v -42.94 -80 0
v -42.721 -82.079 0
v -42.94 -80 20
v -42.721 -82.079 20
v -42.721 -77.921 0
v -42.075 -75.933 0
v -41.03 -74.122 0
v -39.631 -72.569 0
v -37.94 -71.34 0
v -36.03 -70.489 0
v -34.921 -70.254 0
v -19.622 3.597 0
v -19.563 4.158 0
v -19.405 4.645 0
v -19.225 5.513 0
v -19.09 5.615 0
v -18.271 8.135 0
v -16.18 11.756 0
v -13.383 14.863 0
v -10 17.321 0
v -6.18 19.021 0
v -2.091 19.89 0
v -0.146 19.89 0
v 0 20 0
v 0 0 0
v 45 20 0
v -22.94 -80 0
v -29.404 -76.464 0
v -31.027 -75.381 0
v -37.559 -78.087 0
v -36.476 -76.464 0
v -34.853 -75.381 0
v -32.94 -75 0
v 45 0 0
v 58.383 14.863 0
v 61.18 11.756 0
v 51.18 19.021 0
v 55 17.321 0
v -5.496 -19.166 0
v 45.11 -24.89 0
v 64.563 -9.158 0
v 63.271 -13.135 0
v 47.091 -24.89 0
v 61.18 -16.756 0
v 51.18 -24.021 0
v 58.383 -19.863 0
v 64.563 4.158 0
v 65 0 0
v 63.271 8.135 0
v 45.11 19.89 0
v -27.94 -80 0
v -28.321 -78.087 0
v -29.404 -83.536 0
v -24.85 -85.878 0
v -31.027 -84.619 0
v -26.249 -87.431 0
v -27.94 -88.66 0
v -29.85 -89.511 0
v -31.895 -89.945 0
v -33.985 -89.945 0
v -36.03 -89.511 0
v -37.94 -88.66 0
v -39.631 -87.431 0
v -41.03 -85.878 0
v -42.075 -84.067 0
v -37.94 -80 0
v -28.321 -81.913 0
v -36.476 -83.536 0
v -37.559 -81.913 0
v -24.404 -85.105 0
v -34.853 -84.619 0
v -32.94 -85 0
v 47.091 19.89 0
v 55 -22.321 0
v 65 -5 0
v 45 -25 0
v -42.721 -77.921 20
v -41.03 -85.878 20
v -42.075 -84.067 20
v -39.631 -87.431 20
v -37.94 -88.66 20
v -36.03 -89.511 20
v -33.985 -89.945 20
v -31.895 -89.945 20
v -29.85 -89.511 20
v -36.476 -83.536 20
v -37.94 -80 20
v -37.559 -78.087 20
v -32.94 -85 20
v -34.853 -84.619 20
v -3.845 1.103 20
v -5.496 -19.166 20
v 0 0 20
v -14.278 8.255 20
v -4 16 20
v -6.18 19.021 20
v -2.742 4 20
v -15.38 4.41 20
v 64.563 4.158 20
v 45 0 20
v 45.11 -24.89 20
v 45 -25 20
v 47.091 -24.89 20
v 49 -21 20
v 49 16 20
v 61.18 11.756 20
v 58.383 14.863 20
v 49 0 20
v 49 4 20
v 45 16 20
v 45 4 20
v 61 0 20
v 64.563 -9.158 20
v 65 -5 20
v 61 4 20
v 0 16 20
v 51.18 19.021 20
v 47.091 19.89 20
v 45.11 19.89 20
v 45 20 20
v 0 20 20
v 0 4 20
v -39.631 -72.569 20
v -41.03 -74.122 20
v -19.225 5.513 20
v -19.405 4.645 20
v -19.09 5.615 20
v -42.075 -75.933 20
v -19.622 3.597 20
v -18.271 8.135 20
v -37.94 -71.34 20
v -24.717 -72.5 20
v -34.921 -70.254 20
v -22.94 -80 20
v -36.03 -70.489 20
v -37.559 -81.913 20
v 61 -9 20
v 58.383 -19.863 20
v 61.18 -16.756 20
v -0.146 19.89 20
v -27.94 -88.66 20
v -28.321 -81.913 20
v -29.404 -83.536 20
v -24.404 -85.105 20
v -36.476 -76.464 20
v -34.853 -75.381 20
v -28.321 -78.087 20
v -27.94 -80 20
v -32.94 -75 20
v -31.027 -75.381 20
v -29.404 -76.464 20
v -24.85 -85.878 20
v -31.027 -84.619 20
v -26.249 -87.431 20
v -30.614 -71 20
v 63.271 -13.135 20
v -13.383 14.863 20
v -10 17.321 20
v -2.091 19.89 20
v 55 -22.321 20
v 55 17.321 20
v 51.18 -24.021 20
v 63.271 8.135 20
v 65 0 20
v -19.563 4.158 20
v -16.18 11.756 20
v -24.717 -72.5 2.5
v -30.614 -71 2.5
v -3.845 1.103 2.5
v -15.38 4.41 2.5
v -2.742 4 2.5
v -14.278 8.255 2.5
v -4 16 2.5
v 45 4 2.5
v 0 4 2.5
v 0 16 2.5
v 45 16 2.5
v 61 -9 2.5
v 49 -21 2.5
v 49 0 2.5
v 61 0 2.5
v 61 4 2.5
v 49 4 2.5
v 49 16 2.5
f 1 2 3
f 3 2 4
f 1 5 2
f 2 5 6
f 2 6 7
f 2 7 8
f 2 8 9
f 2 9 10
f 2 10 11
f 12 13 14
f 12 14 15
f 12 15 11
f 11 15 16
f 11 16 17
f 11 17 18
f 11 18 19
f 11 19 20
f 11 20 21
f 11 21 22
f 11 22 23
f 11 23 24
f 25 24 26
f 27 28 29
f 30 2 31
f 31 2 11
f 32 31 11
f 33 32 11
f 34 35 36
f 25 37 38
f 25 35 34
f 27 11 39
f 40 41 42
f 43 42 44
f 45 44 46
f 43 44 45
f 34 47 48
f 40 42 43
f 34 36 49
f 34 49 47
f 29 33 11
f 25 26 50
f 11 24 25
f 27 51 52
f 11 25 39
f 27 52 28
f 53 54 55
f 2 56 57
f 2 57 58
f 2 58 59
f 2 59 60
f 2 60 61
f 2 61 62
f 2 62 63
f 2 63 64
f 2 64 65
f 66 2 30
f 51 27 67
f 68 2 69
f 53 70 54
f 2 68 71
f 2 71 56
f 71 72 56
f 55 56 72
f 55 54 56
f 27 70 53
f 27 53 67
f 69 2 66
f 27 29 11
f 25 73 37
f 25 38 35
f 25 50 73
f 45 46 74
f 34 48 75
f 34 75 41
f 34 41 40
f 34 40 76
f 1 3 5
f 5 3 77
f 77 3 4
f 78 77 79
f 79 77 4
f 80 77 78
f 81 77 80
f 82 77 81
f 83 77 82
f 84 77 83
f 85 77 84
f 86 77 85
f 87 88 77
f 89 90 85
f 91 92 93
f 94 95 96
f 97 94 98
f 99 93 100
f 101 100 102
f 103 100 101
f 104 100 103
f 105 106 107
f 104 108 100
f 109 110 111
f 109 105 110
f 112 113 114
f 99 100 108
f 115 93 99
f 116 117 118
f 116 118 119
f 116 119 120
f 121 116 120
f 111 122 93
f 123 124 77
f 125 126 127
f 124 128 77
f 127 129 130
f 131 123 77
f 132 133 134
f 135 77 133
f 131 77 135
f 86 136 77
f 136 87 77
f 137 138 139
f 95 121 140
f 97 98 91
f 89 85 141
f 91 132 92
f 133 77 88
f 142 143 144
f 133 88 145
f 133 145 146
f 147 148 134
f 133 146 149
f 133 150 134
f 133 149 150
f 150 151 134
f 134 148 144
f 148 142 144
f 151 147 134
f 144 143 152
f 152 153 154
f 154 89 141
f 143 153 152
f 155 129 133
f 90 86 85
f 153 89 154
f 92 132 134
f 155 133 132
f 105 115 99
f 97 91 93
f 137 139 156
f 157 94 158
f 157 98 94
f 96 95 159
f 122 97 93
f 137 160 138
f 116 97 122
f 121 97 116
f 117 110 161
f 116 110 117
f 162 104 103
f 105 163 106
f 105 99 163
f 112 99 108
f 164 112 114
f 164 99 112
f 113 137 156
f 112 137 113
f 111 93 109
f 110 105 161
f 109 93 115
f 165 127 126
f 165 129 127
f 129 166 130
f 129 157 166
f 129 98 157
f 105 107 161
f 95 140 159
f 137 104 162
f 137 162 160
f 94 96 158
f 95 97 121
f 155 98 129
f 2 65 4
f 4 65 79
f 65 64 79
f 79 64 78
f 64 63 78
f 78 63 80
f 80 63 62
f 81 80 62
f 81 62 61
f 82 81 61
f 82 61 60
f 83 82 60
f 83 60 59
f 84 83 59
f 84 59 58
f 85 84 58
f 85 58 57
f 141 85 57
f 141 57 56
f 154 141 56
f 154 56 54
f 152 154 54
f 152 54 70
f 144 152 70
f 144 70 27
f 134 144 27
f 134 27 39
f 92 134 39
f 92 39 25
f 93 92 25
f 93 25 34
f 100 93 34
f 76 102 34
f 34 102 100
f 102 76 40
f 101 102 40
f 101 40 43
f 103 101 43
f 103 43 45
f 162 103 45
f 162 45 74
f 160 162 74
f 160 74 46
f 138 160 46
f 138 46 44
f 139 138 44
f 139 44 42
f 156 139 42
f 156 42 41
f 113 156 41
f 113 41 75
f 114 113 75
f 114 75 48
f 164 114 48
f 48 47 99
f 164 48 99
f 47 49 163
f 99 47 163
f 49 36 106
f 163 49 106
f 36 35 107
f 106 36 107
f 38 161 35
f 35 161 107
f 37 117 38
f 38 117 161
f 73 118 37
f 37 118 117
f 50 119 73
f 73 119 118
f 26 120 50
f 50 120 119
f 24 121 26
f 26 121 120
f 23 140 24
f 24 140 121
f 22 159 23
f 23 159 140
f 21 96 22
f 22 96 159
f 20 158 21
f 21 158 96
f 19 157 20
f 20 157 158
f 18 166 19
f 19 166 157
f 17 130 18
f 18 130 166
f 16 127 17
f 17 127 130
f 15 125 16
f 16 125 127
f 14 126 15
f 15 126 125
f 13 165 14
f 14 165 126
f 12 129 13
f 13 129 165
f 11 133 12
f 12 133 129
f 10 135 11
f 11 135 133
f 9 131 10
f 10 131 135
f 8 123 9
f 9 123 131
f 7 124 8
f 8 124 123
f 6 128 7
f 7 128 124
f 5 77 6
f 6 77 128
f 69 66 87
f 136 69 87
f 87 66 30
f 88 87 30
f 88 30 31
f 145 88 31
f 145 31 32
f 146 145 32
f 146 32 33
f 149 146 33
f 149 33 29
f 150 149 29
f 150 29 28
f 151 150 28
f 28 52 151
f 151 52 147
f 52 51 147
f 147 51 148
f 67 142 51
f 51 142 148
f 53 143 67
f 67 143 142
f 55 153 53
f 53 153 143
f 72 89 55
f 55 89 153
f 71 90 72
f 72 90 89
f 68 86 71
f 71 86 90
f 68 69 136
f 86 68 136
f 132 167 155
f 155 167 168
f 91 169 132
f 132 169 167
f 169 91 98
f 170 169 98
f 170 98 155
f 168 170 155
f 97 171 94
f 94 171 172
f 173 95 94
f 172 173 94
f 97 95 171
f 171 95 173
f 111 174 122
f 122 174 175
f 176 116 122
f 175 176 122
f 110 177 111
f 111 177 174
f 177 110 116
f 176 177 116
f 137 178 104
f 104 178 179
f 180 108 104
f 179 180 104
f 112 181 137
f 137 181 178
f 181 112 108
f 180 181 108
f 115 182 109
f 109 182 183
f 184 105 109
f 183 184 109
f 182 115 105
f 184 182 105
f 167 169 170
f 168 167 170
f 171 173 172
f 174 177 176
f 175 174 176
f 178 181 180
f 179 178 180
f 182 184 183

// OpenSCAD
// Fender hook design

w = 45;      // Width top of handrail
d = 25;      // Depth of heandrail.
h = 80;      // Height of main hanger
a = 16;      // Angle between handrail top and side
t1 = 20;     // Thickness at top of hanger
t2 = 14;     // Thickness at bottom of hanger
t3 = 4;      // Thickness of outer frame
t4 = 2.5;    // Thickness of frame web
r1 = 10;     // Outer radius of rope eye
r2 = 5;      // Radius of rope eye hole

p1  = [0,0];
p2  = [w,0];
p3  = [w,-d];
p4  = [w+t1,-d+t1];
p5  = [w+t1,0];
p6  = [w,t1];
p7  = [0,t1];
p8  = [-t1*cos(a),t1*sin(a)];
p9  = [-h*tan(a)-t2,-h];
p10 = [-h*tan(a),-h];
p11 = p10 + [-(r1+r1)*tan(a),-(r1+r1)];
p12 = p11 + [r1,0];

p21 = p1 + [-t3*cos(a),t3*sin(a)];
p22 = p8 + [t3*cos(a),-t3*sin(a)];
p23 = p9 + [t3*cos(a)+(t3+0.5*r1)*sin(a),t3+0.5*r1];
p24 = p10 + [-t3*cos(a)+(t3+0.35*r1)*sin(a),t3+0.35*r1];

p31 = p1 + [t3*(sin(a)-cos(a)),t3];
p32 = p8 + [t3*(cos(a)+sin(a)),t3*(cos(a)-sin(a))];
p33 = p7 + [-t3,-t3];

p41 = p1 + [0,t3];
p42 = p2 + [0,t3];
p43 = p6 + [0,-t3];
p44 = p7 + [0,-t3];

p51 = p2 + [t3,t3];
p52 = p5 + [-t3,t3];
p53 = p6 + [t3,-t3];

p61 = p2 + [t3,0];
p62 = p3 + [t3,t3];
p63 = p4 + [-t3,-t3];
p64 = p5 + [-t3,0];

// Overall profile (outline - hole)
module HangerProfile()
{
  difference()
  {
  union()
    {
      polygon([p1,p2,p3,p4,p5,p6,p7,p8,p9,p10]);
      circle(r=t1);
      translate(p2) circle(r=t1);
      translate([w,-d+t1]) circle(r=t1);
      translate(p10-[r1,0]) circle(r=r1);
    }
    polygon([p1,p2,p3,p12,p11]);
    translate(p10-[r1,0]) circle(r=r2);
  }
}

// Web cutout profile
module WebProfile()
{
  polygon([p21,p22,p23,p24]);
  polygon([p31,p32,p33]);
  polygon([p41,p42,p43,p44]);
  polygon([p51,p52,p53]);
  polygon([p61,p62,p63,p64]);
}

  //polygon([[0,0],[w,0],[w,-d],
  //         [w+t1,-d+t1],[w+t1,0],[w,t1],
  //         [0,t1],[-t1*cos(a),t1*sin(a)],
  //         [-h*tan(a)-t2,-h],[-h*tan(a),-h]
  //         ], 
  //        convexity=4);


//difference()
//{
//  HangerProfile();
//  WebProfile();
//}


//linear_extrude(height=20, twist=0)
//{
//  difference()
//  {
//    polygon([[0,0],[0,10],[15,15],[10,0]]);
//    circle(r=5);
//  }
//}

// Fender hook (extruded outline - extruded web cutouts)
difference()
{
  linear_extrude(height=20, twist=0)
  {
    HangerProfile();
  }
  translate([0,0,t4])
    linear_extrude(height=20, twist=0)
      WebProfile();
}
